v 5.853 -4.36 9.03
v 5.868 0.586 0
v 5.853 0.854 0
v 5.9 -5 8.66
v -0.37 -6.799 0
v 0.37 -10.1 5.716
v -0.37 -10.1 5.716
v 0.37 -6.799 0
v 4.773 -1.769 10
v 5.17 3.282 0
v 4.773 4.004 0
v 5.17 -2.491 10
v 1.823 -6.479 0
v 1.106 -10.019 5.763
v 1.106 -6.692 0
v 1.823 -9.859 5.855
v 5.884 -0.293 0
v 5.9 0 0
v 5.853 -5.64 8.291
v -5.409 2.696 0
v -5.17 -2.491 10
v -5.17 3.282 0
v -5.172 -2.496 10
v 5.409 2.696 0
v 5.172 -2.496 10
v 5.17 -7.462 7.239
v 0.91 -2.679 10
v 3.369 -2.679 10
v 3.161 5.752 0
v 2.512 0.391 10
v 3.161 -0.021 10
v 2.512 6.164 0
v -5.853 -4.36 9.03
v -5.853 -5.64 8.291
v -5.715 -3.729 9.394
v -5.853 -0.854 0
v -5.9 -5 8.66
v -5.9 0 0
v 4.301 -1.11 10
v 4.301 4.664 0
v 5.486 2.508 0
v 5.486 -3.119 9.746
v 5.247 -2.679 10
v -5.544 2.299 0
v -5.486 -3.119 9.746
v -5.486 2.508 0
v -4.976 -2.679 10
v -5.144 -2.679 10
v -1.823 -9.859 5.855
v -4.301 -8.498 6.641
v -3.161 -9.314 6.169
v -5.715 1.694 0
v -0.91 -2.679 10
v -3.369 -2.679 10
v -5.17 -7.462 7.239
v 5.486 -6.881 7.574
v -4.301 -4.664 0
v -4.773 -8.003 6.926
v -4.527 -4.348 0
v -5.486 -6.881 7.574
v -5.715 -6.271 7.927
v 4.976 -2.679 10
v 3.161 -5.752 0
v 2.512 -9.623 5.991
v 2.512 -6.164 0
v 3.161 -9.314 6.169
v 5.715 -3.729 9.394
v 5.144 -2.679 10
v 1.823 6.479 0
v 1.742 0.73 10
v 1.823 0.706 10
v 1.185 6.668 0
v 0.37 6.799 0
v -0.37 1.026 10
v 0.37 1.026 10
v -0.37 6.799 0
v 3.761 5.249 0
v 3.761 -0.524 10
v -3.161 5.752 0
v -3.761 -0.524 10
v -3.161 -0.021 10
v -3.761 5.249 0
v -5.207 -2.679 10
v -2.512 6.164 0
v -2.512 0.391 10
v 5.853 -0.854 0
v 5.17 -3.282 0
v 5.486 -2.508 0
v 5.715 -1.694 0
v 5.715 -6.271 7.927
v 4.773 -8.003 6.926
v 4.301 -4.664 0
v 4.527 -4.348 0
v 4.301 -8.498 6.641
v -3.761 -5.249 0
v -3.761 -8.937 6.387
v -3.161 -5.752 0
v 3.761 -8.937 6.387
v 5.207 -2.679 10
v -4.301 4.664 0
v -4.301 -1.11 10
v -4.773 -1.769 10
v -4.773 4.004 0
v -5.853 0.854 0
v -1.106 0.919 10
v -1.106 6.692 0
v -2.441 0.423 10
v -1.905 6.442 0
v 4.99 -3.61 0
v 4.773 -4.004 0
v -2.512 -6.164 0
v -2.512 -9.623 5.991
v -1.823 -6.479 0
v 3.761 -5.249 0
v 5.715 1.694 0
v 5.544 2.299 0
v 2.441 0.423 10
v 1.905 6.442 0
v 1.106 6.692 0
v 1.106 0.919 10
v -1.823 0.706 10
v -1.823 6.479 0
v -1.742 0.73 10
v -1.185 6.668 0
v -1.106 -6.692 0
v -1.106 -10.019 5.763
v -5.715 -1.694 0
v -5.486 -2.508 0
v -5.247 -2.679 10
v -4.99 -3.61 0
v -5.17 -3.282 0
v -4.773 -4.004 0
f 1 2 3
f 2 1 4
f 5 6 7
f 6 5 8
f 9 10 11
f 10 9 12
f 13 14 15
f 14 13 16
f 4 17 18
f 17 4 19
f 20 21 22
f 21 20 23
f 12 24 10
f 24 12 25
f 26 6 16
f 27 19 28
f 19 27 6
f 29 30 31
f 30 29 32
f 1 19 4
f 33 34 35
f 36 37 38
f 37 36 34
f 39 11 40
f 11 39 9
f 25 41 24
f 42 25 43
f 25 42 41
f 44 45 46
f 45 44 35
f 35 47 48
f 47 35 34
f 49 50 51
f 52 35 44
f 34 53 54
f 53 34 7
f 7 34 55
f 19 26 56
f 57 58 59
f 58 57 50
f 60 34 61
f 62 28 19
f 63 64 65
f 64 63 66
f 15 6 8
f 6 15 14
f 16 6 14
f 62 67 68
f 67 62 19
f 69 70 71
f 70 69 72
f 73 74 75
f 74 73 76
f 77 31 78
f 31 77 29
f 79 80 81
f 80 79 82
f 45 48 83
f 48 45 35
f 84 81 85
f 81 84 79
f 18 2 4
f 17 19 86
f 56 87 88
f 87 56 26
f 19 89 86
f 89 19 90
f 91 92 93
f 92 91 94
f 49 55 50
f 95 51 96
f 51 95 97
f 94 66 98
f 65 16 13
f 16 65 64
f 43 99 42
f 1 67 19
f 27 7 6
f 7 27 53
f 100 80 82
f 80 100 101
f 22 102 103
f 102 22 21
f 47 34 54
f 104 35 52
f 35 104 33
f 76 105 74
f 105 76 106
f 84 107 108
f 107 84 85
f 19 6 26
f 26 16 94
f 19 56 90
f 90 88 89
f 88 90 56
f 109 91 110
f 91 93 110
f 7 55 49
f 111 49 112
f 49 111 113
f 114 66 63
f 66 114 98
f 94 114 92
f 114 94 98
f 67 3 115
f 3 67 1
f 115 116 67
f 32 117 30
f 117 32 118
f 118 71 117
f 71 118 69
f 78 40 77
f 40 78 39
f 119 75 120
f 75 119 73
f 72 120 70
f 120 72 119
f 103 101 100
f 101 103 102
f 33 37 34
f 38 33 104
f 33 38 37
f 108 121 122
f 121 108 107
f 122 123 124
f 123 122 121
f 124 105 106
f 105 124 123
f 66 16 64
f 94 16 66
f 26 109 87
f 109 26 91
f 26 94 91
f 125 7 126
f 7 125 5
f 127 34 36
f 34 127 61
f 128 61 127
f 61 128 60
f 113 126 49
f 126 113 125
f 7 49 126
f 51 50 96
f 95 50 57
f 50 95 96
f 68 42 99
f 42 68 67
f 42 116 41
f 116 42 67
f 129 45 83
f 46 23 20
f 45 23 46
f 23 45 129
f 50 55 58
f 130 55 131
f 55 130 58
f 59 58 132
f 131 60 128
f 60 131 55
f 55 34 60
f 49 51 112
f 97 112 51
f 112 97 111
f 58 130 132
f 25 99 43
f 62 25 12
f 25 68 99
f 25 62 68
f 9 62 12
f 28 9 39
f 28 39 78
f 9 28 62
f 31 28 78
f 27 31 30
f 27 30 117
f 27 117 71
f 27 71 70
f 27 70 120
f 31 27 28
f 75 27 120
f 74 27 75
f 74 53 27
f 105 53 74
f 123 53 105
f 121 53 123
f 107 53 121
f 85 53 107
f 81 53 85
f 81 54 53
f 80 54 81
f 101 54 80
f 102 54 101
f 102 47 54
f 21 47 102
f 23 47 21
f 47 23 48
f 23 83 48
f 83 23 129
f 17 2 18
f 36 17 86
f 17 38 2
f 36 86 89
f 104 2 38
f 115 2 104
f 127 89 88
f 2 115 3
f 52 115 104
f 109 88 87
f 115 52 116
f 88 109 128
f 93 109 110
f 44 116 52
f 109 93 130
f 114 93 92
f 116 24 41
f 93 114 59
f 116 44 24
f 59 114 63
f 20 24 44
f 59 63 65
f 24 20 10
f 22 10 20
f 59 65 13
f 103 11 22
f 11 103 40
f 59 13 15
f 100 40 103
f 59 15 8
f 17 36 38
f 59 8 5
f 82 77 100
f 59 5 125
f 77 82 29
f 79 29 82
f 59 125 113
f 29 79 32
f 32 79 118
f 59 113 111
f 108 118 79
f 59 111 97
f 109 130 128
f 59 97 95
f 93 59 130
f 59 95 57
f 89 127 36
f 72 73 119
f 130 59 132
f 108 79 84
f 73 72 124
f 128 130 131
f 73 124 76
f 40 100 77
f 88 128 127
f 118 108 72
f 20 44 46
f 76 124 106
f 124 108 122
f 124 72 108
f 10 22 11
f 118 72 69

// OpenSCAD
magnet_r=11.8/2;
hh=15;

chop_h=10;

intersection()
{
    rotate([30,0,0])translate([0,0,-5])cylinder(r=magnet_r,h=hh,$fn=50);
    translate([0,0,chop_h/2])cube([50,50,chop_h],center=true);
}
